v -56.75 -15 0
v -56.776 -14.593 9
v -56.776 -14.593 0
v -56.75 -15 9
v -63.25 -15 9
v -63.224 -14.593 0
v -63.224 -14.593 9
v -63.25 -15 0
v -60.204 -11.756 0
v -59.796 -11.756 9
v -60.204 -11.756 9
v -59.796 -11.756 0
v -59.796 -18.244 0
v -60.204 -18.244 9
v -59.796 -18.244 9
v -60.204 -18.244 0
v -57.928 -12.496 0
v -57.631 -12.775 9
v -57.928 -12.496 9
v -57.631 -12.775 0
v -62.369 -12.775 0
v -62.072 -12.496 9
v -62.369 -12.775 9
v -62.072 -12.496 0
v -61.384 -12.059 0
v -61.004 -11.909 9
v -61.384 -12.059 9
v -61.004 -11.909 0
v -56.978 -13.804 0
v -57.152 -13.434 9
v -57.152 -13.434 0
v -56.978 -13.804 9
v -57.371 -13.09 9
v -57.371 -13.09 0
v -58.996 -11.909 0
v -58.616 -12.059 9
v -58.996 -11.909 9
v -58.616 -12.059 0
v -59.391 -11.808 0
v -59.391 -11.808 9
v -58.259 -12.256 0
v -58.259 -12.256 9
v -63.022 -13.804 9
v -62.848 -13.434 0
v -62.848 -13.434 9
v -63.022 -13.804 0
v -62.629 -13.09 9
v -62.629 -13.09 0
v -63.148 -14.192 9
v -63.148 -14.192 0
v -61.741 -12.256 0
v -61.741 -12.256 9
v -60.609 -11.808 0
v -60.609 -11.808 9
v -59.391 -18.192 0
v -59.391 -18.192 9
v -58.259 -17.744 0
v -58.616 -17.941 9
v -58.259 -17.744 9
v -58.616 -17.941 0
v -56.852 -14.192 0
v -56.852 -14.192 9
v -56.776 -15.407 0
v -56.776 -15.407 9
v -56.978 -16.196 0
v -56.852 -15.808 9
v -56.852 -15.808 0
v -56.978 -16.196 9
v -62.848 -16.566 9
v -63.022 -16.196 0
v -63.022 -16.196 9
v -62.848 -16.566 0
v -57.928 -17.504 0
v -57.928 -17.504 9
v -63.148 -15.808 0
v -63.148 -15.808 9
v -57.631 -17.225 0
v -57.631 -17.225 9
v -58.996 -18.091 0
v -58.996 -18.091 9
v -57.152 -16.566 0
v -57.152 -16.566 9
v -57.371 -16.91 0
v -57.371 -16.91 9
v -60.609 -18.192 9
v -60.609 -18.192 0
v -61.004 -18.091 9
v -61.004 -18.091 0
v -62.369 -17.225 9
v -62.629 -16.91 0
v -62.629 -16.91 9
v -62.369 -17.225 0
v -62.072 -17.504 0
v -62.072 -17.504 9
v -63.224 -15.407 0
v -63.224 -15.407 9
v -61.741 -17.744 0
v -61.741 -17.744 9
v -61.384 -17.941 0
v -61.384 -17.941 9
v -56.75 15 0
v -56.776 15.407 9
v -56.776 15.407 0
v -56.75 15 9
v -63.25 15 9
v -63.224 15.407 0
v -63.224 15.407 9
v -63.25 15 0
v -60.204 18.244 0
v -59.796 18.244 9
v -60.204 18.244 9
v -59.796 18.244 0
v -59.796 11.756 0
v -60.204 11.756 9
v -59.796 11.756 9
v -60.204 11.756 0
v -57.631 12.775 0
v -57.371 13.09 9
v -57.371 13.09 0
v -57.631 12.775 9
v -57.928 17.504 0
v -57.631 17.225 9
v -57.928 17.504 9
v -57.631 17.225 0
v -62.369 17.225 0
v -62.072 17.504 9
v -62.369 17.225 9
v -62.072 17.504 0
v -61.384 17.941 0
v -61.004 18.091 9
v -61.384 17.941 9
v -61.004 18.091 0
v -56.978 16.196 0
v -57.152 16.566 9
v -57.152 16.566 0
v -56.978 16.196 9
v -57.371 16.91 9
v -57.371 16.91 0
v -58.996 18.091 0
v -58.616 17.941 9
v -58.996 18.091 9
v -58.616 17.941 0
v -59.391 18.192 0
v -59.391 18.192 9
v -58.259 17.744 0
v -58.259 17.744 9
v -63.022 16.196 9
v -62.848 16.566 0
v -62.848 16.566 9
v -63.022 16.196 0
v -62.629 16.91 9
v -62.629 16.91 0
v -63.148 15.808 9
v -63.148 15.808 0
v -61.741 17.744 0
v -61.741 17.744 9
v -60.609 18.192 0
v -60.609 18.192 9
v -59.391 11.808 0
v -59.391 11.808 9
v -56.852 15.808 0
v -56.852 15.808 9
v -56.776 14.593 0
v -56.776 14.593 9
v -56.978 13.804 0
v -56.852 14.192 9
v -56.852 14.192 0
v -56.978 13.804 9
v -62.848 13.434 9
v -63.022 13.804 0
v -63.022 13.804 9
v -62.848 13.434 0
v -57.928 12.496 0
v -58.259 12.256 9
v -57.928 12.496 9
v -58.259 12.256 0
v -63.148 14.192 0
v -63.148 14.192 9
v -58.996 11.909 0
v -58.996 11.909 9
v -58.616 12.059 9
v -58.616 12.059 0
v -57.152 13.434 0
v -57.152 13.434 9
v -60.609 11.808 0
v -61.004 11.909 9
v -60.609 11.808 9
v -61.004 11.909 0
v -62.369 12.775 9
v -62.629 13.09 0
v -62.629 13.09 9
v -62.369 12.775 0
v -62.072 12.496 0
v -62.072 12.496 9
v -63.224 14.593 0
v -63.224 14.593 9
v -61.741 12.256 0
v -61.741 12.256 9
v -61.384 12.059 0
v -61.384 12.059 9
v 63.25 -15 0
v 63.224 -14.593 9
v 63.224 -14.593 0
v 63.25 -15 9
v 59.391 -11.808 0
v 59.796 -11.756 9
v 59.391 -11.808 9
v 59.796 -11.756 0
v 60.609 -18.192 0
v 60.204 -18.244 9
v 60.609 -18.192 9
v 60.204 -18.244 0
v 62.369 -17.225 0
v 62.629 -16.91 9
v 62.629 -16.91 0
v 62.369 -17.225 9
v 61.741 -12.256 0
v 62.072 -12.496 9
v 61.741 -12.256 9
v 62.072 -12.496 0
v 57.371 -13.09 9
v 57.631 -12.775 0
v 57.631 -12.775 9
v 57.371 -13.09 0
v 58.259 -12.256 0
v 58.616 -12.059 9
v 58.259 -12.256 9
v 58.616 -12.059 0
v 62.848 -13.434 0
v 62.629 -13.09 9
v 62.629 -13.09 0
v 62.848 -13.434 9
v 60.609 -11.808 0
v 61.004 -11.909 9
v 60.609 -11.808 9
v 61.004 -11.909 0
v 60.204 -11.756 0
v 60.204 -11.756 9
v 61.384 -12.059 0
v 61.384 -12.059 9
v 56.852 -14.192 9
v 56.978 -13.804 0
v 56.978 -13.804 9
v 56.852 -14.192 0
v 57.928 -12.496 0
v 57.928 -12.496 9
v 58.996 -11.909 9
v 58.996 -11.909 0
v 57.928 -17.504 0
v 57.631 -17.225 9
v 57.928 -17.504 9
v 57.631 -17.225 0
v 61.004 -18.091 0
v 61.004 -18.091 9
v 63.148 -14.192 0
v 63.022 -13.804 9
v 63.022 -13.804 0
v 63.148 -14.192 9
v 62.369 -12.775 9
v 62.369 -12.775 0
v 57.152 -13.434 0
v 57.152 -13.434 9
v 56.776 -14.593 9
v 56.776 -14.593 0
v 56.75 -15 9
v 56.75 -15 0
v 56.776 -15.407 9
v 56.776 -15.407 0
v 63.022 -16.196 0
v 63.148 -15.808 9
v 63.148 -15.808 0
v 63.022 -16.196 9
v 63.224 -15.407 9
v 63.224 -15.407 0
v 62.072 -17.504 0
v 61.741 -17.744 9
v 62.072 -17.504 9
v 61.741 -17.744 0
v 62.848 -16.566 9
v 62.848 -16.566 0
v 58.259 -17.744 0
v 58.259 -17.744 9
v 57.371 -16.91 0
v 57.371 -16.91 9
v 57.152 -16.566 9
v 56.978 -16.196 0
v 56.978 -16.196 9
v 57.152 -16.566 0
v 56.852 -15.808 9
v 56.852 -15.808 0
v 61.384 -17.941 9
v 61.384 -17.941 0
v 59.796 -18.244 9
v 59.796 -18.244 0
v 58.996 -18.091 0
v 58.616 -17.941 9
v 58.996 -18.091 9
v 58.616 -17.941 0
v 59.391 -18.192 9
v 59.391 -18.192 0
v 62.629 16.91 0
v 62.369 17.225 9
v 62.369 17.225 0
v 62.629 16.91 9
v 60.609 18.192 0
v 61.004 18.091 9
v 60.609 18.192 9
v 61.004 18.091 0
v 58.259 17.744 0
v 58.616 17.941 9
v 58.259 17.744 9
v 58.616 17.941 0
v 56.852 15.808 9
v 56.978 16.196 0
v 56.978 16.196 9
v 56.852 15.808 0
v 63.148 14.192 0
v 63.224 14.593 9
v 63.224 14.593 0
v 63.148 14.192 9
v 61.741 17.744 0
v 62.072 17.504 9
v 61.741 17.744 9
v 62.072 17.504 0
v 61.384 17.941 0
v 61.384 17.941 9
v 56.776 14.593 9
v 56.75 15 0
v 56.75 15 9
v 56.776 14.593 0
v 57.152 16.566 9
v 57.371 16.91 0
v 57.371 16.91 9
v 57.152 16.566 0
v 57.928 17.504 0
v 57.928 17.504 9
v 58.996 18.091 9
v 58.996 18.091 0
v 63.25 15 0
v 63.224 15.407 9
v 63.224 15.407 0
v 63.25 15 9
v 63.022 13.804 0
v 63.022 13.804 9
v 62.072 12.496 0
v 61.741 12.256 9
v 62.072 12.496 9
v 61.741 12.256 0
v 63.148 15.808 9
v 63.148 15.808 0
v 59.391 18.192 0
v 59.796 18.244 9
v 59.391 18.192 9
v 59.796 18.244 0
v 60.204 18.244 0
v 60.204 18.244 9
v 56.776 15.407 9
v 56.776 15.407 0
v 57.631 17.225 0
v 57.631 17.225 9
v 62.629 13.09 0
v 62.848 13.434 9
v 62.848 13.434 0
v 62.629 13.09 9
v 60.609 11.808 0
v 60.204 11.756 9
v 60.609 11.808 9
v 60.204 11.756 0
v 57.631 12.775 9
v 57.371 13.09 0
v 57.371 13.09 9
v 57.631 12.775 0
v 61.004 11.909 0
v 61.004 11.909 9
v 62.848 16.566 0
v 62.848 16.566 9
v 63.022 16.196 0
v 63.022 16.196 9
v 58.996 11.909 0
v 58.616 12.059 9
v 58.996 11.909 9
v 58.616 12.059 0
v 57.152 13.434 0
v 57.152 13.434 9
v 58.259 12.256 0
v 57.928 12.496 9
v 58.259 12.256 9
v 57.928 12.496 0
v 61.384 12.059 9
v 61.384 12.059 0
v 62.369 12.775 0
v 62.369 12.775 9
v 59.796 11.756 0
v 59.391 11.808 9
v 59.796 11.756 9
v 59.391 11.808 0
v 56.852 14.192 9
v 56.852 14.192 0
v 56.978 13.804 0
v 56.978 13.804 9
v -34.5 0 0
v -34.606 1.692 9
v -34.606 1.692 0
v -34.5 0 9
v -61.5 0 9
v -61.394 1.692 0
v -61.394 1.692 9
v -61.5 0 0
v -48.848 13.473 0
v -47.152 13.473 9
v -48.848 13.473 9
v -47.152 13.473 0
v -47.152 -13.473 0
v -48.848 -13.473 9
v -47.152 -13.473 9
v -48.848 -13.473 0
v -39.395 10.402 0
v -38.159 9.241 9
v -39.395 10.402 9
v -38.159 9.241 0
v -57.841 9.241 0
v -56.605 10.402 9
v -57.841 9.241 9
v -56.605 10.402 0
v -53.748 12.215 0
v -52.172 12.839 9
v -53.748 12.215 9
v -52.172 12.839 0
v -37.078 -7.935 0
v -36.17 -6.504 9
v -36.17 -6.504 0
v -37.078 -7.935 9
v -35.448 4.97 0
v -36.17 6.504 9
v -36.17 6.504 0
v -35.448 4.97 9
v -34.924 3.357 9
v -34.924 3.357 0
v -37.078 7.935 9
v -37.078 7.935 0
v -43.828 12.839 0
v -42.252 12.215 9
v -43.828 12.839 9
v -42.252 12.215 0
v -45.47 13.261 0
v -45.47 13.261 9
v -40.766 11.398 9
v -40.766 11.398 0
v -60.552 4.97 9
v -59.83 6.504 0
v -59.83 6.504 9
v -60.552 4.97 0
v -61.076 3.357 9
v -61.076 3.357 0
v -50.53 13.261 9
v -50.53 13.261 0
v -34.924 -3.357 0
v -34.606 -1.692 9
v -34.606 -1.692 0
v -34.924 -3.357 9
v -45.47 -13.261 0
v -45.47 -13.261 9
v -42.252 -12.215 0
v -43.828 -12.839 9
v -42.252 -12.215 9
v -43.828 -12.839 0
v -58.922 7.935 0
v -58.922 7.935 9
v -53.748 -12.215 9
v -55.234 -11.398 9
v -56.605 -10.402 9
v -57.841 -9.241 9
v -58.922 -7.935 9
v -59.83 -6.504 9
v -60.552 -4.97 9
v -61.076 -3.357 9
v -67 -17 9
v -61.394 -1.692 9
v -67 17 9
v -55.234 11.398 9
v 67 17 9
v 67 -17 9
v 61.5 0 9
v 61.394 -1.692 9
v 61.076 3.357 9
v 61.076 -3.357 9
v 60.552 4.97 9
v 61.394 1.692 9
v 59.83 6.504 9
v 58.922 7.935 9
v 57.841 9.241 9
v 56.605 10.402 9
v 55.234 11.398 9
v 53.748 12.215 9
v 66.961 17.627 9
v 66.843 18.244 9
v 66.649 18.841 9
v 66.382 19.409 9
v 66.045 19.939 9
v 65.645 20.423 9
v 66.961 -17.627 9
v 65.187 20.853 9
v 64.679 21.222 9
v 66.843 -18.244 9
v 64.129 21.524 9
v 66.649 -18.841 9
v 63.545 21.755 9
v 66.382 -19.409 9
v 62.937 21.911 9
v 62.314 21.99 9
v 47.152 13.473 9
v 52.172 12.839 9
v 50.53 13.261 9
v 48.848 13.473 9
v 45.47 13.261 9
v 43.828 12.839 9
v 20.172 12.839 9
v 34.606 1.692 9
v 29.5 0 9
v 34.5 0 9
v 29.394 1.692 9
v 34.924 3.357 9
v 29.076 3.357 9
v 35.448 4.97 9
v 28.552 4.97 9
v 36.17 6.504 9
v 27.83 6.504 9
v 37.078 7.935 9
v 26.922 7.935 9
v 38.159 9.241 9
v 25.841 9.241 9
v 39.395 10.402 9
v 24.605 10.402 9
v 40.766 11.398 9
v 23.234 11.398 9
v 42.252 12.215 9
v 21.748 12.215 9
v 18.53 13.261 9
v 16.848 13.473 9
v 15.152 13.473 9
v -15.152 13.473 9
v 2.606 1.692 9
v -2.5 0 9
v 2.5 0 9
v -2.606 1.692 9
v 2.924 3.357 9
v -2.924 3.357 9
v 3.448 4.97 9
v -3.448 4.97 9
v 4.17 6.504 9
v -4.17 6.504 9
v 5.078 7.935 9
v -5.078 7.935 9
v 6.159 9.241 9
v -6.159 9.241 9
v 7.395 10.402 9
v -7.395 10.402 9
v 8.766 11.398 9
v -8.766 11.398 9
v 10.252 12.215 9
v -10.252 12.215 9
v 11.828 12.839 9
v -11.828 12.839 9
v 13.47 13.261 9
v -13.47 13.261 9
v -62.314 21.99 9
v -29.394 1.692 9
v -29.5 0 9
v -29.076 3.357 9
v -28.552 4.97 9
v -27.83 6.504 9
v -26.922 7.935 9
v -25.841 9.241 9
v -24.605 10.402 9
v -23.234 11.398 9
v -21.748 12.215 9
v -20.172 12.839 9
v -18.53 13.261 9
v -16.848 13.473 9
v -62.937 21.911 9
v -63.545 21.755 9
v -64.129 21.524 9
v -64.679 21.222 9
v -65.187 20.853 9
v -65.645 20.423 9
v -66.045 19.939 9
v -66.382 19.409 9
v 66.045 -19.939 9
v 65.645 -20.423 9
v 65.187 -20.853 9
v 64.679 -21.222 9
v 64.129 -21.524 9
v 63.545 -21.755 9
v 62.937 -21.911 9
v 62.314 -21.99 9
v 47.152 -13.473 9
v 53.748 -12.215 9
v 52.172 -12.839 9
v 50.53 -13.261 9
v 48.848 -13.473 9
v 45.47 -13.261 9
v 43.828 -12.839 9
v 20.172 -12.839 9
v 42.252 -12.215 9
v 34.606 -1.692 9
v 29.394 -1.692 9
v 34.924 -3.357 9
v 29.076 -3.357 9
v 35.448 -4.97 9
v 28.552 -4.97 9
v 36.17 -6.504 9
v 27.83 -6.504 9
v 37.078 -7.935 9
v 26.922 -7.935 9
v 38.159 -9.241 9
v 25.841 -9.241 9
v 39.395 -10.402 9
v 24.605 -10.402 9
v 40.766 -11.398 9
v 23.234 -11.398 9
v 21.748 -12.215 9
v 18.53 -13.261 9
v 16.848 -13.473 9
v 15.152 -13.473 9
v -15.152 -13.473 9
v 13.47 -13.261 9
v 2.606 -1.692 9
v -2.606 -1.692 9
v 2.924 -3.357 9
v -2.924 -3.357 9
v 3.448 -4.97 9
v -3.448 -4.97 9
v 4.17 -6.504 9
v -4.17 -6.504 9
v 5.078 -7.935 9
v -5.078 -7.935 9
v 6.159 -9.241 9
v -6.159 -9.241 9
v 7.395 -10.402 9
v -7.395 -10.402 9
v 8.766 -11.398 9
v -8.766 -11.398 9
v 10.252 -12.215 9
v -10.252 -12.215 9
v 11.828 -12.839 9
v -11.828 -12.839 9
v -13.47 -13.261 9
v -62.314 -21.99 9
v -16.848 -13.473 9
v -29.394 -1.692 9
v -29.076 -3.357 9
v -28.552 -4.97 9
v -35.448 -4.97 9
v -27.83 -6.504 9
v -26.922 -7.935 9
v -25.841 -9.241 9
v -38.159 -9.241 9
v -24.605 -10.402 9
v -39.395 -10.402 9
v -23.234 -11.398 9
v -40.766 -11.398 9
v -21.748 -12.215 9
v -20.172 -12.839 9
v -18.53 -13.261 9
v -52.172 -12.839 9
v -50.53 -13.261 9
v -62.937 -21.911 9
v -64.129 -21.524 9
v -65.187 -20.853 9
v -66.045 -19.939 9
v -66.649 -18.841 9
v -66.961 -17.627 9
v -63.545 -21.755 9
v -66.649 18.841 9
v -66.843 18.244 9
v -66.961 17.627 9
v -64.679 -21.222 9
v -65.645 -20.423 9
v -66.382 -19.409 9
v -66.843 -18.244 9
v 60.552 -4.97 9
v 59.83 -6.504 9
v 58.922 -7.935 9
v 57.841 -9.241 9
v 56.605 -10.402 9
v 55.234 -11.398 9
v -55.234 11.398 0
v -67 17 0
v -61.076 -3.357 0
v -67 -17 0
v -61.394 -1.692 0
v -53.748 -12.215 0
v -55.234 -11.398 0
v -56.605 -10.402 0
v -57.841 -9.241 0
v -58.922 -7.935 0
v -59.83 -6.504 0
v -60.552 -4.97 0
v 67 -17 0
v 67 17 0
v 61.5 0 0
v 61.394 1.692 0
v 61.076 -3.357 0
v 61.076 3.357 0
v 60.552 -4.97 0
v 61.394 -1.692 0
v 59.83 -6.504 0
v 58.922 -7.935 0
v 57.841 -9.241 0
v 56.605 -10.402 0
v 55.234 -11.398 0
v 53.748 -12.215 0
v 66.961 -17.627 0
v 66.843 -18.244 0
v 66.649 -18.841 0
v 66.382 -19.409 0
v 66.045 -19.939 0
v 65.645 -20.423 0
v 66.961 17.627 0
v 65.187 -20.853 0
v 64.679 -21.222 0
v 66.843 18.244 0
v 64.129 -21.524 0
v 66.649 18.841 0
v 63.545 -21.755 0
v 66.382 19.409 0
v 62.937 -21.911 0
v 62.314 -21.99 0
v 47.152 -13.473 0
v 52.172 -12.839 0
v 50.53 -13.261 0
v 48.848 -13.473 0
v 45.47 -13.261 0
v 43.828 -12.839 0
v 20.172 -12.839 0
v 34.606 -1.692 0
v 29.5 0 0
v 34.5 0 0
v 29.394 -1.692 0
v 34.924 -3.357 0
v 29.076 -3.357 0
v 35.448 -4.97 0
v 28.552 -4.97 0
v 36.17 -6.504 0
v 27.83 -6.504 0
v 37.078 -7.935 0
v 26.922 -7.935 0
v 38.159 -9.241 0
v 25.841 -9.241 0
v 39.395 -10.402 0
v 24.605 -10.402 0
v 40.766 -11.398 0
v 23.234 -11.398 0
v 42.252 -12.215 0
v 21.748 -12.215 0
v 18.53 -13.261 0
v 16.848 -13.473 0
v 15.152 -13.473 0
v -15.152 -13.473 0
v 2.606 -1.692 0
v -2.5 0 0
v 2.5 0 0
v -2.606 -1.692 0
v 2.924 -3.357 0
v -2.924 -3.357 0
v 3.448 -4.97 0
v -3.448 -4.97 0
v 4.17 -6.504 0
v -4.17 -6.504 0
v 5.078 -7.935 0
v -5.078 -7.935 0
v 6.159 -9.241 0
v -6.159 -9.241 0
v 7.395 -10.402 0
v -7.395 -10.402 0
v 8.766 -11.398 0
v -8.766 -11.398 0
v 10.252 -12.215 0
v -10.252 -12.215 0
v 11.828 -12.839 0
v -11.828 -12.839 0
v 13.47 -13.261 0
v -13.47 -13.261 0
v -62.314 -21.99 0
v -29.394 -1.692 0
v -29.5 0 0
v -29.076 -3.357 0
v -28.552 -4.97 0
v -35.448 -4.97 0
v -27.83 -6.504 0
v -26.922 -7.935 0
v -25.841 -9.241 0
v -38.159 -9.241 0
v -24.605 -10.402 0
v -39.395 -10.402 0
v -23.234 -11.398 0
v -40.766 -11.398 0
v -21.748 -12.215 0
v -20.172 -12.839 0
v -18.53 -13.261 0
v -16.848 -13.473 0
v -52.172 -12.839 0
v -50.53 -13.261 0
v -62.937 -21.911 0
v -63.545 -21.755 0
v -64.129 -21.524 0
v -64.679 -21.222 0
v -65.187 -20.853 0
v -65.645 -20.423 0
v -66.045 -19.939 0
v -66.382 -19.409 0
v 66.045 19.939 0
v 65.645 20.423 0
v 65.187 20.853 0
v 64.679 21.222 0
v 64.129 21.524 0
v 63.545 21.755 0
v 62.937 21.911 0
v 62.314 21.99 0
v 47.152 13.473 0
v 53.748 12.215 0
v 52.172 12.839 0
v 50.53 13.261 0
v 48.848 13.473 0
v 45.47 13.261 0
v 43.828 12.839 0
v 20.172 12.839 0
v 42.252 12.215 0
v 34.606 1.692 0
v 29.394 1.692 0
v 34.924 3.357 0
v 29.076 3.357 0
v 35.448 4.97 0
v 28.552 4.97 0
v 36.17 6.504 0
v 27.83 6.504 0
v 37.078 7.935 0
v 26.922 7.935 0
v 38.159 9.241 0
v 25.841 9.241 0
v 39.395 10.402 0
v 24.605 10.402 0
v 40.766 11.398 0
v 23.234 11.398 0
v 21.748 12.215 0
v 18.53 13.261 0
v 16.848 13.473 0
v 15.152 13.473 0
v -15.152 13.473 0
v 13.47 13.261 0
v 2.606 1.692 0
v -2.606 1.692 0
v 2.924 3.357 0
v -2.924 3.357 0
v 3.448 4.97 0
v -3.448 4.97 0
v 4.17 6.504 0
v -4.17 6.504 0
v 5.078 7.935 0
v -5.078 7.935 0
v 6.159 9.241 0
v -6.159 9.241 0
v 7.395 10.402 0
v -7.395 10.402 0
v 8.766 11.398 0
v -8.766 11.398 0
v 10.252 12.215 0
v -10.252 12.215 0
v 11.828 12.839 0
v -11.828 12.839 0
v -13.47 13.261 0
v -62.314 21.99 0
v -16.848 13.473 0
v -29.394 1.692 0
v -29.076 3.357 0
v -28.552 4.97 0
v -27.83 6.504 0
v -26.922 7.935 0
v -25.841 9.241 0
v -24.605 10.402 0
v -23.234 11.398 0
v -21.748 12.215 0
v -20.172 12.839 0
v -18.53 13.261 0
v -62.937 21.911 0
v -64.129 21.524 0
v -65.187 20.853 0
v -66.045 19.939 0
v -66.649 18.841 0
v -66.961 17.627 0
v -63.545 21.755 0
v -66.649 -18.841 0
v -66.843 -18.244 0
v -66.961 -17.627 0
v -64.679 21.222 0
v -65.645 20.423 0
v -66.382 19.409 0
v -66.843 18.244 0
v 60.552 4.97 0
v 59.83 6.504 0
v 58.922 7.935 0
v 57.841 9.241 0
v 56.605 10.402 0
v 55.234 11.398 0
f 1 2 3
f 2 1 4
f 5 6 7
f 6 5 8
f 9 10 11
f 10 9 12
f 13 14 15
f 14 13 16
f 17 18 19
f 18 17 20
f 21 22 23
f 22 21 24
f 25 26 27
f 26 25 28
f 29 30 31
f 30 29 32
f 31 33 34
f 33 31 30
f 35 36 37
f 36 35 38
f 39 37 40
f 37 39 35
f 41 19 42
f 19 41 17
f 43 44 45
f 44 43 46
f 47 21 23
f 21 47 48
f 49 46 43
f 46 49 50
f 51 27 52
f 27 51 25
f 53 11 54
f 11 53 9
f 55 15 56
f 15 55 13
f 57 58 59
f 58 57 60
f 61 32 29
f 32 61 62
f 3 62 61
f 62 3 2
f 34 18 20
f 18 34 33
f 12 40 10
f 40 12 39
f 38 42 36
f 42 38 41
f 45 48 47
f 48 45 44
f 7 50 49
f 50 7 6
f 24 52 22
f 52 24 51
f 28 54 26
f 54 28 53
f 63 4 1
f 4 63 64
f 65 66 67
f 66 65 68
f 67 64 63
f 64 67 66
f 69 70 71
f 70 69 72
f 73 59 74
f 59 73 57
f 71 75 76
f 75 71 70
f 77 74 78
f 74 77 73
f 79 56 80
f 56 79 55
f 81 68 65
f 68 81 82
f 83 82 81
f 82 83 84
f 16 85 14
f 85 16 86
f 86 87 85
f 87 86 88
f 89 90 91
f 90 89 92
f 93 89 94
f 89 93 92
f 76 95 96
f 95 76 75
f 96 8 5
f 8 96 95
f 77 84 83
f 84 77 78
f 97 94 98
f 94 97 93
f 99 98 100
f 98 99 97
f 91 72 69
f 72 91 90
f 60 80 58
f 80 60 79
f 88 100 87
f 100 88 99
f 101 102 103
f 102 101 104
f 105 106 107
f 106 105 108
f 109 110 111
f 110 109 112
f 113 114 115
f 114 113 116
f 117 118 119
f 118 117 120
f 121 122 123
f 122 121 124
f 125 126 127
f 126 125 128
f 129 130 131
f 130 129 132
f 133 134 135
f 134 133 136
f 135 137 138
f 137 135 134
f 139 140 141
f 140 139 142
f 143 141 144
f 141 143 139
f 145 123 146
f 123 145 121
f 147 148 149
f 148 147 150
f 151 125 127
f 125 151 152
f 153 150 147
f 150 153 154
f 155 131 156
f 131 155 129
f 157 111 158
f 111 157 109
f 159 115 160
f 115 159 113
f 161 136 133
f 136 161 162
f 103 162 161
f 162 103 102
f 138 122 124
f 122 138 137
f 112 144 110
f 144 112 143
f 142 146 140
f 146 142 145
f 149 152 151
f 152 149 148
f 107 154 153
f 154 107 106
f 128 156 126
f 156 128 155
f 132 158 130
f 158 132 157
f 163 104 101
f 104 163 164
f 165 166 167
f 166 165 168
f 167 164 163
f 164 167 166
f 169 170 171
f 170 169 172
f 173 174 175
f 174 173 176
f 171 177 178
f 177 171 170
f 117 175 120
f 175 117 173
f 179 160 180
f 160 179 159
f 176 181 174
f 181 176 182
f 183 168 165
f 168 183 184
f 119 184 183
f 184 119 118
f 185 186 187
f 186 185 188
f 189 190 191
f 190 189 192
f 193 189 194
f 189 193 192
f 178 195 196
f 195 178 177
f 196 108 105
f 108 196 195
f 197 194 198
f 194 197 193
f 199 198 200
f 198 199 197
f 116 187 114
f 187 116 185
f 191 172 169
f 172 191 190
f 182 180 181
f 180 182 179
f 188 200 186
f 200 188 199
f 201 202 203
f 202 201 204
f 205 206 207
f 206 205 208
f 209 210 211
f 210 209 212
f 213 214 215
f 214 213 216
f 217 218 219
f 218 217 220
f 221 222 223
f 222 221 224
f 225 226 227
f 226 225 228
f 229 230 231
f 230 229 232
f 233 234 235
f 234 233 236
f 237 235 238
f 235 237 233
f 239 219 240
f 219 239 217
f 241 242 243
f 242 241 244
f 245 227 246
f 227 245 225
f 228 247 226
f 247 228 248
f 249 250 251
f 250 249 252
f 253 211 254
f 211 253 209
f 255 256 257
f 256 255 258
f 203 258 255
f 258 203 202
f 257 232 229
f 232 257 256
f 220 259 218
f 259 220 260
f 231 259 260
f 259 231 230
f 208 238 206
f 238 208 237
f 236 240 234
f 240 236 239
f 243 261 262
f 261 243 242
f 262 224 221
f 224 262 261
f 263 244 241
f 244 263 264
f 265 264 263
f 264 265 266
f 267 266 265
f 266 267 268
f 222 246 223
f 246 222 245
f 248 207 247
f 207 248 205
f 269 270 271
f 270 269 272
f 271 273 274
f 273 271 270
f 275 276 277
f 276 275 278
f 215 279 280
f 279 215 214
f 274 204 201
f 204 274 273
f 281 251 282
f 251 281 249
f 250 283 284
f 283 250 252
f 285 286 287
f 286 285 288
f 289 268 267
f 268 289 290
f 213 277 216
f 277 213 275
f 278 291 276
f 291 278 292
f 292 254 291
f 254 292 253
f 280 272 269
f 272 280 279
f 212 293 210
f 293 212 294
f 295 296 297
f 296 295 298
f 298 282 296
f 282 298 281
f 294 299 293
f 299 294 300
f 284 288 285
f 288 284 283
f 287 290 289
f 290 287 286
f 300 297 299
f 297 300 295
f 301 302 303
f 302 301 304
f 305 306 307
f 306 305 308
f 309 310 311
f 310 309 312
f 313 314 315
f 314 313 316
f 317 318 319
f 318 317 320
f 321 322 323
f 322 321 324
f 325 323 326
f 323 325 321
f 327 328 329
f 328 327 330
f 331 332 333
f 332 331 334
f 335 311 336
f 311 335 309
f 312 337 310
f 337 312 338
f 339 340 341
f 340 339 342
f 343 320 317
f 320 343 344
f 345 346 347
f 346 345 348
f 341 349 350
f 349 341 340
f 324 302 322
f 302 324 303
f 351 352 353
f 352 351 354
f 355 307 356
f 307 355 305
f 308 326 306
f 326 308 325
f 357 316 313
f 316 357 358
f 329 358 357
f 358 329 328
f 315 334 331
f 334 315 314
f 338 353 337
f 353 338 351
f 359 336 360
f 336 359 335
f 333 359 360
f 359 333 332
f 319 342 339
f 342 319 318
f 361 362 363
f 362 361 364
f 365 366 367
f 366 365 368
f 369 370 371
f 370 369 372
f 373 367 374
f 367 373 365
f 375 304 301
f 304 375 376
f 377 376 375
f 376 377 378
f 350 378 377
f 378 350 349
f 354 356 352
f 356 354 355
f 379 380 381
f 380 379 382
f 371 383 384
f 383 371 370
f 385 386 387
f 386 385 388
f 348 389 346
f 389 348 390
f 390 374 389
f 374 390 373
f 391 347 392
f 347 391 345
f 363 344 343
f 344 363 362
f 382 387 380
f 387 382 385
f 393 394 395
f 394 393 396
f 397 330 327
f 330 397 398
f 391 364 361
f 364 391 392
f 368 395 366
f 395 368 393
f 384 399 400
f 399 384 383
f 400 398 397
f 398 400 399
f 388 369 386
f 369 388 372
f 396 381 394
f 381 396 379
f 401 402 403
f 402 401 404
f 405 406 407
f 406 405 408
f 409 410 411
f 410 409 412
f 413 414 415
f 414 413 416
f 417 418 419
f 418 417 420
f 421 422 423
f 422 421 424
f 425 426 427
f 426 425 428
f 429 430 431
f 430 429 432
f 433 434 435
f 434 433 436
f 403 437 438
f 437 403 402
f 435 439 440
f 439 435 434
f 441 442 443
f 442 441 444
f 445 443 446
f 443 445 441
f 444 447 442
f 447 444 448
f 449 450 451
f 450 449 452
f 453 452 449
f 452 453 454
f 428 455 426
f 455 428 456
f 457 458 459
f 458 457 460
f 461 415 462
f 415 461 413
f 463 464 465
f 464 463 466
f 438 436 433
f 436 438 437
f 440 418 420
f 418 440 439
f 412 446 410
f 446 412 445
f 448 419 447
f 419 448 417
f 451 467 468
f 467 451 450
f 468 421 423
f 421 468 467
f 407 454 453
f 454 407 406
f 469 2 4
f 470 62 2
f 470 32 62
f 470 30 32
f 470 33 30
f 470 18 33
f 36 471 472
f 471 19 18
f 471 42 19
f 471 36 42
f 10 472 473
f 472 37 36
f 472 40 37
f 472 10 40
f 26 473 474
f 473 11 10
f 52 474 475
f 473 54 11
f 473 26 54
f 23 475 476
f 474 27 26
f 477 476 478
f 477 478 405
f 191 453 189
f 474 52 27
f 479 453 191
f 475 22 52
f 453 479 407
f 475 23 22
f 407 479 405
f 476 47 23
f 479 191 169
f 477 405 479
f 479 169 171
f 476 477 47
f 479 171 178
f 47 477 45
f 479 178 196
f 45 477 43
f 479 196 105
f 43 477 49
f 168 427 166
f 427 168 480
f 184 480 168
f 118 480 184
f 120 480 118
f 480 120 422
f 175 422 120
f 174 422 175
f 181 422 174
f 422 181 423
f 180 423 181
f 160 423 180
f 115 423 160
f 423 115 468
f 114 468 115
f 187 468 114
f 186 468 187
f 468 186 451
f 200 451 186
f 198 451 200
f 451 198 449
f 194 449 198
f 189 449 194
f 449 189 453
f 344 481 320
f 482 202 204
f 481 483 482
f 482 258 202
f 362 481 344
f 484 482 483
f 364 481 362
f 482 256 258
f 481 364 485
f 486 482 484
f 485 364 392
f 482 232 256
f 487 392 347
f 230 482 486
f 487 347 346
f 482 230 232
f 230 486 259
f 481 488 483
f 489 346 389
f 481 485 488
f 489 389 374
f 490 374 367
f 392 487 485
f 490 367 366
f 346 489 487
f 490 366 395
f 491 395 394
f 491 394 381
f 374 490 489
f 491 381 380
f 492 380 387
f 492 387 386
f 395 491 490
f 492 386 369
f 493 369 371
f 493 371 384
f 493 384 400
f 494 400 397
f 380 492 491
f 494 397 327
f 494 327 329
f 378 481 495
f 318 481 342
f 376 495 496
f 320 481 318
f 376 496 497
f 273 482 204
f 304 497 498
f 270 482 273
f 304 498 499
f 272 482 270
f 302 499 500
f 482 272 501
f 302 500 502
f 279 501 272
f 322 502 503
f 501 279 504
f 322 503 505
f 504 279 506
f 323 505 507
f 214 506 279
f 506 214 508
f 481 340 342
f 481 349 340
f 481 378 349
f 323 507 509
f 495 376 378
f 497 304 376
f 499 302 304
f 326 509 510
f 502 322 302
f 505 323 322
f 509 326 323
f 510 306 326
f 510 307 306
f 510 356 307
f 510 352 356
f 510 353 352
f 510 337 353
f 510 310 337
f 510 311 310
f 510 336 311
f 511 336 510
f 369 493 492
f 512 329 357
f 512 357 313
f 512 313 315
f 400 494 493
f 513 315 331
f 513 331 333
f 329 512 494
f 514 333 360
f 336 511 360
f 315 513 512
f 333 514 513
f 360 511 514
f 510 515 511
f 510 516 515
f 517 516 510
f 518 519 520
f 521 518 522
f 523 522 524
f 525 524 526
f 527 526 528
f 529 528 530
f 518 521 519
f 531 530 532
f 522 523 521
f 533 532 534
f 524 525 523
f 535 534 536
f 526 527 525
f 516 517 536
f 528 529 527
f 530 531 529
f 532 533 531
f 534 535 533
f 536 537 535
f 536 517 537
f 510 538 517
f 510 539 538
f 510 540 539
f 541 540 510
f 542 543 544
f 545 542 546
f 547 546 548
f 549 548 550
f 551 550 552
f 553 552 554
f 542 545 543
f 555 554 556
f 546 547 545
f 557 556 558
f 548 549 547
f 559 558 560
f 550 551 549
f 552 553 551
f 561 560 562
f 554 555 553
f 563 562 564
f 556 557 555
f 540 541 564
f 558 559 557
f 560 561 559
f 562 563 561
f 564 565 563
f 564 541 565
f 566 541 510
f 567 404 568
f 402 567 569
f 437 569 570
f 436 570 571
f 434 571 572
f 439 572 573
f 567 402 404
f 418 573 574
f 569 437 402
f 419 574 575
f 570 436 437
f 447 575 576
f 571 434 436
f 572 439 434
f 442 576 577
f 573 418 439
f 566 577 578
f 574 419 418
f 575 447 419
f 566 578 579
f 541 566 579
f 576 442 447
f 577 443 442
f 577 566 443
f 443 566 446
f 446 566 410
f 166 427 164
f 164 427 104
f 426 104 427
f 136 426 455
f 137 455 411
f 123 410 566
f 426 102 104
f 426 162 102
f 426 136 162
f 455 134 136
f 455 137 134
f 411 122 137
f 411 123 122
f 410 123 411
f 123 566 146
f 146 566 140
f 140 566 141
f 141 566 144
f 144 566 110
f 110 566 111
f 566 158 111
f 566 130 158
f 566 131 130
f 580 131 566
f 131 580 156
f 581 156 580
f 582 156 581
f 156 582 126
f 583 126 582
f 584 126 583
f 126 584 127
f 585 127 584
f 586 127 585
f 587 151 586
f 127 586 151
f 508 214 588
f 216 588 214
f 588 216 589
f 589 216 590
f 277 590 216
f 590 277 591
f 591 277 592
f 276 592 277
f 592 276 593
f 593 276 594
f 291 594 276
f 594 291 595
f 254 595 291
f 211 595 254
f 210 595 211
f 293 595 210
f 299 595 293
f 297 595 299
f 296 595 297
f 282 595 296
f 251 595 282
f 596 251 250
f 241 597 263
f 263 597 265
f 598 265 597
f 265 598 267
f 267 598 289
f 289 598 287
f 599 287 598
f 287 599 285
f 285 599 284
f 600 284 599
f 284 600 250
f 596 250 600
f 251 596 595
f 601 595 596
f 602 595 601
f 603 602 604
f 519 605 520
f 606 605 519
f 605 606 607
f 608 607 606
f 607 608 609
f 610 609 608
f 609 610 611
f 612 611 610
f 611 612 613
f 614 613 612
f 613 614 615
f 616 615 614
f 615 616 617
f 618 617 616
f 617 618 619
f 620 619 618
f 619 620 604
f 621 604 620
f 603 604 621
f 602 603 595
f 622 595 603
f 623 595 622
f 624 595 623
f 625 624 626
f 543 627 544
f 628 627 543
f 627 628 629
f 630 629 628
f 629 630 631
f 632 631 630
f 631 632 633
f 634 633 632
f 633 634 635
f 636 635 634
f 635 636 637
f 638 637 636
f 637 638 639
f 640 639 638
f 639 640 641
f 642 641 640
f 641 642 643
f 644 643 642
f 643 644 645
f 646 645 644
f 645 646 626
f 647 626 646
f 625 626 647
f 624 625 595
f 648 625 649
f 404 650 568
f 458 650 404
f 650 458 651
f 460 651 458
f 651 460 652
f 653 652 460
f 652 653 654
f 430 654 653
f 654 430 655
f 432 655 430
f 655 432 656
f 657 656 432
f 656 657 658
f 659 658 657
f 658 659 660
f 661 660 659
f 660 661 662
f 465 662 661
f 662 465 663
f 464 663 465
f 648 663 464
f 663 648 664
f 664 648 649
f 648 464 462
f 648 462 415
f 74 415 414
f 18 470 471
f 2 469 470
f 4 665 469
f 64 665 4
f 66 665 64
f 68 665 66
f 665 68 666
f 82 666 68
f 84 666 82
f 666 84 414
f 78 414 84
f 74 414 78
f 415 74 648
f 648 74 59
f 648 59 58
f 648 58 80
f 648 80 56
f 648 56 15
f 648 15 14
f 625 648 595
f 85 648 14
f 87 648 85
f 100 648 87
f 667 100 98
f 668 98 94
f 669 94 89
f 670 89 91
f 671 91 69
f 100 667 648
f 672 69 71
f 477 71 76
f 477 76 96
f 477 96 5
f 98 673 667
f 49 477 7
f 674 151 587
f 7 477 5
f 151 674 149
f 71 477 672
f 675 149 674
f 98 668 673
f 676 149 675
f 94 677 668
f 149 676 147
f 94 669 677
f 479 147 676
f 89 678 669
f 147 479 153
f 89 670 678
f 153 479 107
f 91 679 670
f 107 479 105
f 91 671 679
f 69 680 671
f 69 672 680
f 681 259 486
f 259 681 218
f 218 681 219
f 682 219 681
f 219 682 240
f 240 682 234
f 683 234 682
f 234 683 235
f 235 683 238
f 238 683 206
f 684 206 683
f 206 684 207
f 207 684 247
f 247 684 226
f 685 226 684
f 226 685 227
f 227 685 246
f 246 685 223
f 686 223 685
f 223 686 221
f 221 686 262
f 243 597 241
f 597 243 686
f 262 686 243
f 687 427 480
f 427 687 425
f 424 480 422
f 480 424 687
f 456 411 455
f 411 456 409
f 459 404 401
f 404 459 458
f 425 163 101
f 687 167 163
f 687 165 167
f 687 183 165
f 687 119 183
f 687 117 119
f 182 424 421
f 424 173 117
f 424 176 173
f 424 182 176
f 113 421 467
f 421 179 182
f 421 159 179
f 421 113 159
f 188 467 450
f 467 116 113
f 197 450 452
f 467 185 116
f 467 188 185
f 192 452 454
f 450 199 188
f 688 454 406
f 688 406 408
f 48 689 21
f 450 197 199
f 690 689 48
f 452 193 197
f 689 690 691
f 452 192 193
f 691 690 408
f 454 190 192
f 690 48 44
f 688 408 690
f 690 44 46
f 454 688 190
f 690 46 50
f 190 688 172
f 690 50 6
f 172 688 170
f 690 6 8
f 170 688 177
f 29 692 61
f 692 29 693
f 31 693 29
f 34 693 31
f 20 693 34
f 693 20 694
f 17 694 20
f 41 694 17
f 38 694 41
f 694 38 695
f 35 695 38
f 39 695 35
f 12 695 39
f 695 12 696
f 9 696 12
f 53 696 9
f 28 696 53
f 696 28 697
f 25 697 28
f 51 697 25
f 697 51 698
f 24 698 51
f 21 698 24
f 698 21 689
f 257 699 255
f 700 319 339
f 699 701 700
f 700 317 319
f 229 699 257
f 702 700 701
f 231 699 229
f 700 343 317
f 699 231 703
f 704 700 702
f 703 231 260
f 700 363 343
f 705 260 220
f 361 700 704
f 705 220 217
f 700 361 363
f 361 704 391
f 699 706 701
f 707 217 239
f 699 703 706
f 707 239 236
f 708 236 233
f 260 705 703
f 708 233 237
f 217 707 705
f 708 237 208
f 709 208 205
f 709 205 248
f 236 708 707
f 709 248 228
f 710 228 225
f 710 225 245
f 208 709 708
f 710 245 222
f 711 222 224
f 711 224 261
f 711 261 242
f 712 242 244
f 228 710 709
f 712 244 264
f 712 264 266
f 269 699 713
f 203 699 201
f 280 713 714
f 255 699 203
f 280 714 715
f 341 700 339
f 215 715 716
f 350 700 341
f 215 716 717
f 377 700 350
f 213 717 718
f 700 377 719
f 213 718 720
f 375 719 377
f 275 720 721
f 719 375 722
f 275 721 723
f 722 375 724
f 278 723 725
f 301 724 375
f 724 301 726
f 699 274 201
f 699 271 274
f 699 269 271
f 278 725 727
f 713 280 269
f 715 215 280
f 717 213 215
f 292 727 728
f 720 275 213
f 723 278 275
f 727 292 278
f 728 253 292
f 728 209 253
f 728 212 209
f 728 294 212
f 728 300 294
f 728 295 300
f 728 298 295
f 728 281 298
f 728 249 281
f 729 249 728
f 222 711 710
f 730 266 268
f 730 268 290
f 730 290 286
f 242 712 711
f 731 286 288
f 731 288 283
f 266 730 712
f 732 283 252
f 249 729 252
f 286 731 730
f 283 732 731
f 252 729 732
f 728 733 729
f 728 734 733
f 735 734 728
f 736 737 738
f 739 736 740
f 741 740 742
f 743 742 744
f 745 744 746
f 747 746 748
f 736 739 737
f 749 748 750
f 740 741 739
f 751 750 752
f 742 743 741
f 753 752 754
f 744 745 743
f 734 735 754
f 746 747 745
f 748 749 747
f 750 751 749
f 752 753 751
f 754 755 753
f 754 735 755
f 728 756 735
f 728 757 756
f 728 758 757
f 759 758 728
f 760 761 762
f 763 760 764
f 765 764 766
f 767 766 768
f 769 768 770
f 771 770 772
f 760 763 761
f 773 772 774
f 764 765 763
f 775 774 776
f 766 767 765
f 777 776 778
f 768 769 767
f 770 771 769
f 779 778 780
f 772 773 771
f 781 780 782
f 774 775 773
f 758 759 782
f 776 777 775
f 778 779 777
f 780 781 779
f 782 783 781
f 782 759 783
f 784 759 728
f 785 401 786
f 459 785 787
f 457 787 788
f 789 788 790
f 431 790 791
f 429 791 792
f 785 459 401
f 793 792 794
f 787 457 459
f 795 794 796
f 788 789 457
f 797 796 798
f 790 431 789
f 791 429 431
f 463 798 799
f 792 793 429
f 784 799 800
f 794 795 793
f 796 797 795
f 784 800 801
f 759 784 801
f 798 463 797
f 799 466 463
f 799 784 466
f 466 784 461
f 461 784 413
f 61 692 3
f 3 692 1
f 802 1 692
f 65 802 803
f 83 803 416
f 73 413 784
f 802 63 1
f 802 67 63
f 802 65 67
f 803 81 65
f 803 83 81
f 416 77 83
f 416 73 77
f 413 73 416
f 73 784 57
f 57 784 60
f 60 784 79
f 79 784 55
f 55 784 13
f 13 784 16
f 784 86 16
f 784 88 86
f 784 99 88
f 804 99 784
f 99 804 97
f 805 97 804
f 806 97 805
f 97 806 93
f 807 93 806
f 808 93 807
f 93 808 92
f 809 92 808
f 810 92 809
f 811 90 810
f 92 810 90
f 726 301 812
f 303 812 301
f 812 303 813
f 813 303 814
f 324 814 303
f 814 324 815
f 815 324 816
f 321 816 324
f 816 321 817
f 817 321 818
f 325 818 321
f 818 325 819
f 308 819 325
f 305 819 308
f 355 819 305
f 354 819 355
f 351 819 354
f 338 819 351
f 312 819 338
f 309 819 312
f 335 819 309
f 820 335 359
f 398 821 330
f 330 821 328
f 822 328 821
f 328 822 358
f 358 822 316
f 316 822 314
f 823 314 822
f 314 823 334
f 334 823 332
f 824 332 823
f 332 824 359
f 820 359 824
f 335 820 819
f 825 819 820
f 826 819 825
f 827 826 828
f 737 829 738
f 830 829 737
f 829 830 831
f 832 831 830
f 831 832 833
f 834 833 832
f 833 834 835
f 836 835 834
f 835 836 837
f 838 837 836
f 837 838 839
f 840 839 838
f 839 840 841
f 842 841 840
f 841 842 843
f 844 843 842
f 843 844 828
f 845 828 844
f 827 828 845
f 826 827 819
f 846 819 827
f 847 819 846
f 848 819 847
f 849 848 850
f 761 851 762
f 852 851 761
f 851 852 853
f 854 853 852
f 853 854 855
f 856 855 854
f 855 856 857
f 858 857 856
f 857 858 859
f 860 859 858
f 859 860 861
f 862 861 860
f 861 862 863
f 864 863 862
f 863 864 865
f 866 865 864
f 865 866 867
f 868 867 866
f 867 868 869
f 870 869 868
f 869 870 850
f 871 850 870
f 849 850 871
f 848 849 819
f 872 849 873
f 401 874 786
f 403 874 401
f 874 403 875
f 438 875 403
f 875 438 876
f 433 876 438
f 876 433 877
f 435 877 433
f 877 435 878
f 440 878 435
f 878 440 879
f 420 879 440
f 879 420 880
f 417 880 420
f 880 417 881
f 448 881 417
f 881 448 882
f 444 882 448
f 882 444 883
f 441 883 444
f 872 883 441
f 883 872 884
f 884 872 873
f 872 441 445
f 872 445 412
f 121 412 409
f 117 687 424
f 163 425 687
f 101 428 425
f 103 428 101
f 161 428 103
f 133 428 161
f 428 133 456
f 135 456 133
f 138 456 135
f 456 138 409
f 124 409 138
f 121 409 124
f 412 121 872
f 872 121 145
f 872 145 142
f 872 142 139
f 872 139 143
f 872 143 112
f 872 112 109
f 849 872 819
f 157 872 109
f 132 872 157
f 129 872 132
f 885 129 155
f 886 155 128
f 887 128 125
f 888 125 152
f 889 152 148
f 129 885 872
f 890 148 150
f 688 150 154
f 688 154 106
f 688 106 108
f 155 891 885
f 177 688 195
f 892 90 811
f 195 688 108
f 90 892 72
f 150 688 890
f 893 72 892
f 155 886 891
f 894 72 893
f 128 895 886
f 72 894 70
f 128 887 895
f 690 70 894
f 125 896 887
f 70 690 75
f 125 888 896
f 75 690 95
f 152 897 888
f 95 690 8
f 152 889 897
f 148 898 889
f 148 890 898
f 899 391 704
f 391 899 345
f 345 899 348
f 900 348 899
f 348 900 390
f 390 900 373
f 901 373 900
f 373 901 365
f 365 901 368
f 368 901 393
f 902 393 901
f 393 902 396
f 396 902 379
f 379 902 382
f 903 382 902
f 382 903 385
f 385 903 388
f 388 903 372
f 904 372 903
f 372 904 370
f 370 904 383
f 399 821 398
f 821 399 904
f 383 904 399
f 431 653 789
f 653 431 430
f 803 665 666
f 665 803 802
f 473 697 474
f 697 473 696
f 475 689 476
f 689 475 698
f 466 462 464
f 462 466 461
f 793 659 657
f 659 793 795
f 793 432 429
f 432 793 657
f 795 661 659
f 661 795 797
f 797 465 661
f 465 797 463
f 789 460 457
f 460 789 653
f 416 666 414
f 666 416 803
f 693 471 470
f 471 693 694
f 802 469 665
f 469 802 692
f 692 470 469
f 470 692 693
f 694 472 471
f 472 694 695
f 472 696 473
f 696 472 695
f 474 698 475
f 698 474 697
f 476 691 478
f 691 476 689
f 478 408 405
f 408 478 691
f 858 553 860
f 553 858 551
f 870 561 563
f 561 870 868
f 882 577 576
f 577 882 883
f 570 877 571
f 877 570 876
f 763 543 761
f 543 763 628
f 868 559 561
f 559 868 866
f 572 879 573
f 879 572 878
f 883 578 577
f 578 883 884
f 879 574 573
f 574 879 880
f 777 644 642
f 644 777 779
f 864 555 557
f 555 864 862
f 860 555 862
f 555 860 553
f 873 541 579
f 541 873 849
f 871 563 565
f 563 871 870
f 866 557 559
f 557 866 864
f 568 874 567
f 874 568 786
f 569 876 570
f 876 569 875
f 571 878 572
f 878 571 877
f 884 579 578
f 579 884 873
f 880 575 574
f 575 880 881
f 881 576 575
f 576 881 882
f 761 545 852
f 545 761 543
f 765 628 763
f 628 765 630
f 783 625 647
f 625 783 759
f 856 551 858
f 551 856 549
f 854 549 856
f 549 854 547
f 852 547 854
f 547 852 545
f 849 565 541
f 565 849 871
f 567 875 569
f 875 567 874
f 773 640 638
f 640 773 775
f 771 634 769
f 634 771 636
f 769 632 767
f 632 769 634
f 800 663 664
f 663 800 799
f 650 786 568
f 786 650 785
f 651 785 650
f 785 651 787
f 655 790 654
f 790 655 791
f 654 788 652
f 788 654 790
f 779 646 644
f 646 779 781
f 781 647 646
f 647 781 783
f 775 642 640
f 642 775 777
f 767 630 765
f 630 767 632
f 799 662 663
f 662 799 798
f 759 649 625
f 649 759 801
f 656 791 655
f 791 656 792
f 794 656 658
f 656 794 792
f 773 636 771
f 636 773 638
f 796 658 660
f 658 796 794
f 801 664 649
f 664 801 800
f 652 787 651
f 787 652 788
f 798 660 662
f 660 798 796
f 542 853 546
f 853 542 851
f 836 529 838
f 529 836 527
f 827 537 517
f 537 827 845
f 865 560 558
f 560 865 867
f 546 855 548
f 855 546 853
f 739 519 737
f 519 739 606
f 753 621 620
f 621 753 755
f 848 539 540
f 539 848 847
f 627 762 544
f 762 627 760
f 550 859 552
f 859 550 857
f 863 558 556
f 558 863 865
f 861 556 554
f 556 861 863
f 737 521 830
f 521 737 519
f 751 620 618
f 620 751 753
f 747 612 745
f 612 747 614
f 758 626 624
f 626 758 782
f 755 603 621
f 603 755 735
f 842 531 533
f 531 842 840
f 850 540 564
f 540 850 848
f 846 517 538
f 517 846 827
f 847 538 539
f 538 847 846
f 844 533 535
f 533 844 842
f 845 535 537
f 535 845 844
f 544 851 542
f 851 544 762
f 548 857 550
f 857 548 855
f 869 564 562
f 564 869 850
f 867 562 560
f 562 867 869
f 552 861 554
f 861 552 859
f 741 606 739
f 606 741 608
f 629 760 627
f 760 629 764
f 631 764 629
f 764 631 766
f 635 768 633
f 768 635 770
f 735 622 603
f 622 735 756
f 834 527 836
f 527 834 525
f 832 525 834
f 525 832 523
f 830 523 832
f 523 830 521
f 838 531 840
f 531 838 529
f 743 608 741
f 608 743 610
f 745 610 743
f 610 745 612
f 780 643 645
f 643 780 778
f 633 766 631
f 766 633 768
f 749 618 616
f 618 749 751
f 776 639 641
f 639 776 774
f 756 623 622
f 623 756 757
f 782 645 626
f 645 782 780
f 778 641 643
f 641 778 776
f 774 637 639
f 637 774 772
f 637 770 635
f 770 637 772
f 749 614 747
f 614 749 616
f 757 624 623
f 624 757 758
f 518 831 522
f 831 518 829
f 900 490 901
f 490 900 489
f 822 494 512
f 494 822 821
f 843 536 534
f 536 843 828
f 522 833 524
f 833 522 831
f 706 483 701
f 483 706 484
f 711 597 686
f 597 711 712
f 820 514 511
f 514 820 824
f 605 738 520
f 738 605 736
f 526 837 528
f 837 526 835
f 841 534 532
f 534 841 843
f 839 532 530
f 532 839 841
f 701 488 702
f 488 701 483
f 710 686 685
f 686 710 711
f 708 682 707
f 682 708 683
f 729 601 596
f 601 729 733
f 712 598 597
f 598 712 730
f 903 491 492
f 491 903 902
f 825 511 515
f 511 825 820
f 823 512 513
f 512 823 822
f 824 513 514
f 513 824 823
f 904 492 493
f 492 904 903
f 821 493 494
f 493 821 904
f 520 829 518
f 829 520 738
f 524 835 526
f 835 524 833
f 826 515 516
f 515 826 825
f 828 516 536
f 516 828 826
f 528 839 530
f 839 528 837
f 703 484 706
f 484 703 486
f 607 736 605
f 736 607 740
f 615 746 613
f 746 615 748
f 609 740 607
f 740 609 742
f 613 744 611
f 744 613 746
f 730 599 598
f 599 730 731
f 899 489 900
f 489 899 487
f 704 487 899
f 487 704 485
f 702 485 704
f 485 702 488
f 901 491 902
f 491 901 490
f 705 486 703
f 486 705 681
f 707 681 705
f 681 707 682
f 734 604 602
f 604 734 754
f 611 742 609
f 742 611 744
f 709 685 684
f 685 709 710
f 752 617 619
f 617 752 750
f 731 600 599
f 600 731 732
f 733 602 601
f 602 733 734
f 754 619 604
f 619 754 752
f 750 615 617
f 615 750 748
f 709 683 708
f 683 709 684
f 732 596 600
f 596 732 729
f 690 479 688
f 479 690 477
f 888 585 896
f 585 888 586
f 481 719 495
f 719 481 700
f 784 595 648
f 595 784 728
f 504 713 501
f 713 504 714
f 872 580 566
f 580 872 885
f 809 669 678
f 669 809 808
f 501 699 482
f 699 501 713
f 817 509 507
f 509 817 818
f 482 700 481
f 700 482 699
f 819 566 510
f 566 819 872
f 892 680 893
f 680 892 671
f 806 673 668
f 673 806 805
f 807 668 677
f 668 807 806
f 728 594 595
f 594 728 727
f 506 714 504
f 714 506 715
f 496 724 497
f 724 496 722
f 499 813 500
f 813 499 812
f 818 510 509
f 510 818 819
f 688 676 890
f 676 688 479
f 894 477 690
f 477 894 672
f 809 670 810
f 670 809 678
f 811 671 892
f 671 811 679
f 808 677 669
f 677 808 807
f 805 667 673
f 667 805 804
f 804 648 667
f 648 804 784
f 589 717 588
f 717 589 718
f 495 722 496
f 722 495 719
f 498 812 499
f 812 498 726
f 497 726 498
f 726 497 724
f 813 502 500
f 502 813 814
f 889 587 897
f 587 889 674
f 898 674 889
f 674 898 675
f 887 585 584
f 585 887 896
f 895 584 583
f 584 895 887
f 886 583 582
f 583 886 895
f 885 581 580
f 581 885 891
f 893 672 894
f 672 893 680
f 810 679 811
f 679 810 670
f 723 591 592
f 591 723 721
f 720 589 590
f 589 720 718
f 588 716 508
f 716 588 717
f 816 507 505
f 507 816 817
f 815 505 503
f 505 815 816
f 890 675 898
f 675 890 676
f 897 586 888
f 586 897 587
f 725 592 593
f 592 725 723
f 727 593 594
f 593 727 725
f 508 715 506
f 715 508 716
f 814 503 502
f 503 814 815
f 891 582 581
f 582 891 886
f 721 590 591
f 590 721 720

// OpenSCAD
$fn = 50;


difference() {
	union() {
		hull() {
			translate(v = [-62.0000000000, 17.0000000000, 0]) {
				cylinder(h = 9, r = 5);
			}
			translate(v = [62.0000000000, 17.0000000000, 0]) {
				cylinder(h = 9, r = 5);
			}
			translate(v = [-62.0000000000, -17.0000000000, 0]) {
				cylinder(h = 9, r = 5);
			}
			translate(v = [62.0000000000, -17.0000000000, 0]) {
				cylinder(h = 9, r = 5);
			}
		}
	}
	union() {
		#translate(v = [-60.0000000000, -15.0000000000, -100.0000000000]) {
			cylinder(h = 200, r = 3.2500000000);
		}
		#translate(v = [-60.0000000000, 15.0000000000, -100.0000000000]) {
			cylinder(h = 200, r = 3.2500000000);
		}
		#translate(v = [60.0000000000, -15.0000000000, -100.0000000000]) {
			cylinder(h = 200, r = 3.2500000000);
		}
		#translate(v = [60.0000000000, 15.0000000000, -100.0000000000]) {
			cylinder(h = 200, r = 3.2500000000);
		}
		#translate(v = [-48.0000000000, 0, 0]) {
			cylinder(h = 9, r = 13.5000000000);
		}
		#translate(v = [-16.0000000000, 0, 0]) {
			cylinder(h = 9, r = 13.5000000000);
		}
		#translate(v = [16.0000000000, 0, 0]) {
			cylinder(h = 9, r = 13.5000000000);
		}
		#translate(v = [48.0000000000, 0, 0]) {
			cylinder(h = 9, r = 13.5000000000);
		}
	}
}
